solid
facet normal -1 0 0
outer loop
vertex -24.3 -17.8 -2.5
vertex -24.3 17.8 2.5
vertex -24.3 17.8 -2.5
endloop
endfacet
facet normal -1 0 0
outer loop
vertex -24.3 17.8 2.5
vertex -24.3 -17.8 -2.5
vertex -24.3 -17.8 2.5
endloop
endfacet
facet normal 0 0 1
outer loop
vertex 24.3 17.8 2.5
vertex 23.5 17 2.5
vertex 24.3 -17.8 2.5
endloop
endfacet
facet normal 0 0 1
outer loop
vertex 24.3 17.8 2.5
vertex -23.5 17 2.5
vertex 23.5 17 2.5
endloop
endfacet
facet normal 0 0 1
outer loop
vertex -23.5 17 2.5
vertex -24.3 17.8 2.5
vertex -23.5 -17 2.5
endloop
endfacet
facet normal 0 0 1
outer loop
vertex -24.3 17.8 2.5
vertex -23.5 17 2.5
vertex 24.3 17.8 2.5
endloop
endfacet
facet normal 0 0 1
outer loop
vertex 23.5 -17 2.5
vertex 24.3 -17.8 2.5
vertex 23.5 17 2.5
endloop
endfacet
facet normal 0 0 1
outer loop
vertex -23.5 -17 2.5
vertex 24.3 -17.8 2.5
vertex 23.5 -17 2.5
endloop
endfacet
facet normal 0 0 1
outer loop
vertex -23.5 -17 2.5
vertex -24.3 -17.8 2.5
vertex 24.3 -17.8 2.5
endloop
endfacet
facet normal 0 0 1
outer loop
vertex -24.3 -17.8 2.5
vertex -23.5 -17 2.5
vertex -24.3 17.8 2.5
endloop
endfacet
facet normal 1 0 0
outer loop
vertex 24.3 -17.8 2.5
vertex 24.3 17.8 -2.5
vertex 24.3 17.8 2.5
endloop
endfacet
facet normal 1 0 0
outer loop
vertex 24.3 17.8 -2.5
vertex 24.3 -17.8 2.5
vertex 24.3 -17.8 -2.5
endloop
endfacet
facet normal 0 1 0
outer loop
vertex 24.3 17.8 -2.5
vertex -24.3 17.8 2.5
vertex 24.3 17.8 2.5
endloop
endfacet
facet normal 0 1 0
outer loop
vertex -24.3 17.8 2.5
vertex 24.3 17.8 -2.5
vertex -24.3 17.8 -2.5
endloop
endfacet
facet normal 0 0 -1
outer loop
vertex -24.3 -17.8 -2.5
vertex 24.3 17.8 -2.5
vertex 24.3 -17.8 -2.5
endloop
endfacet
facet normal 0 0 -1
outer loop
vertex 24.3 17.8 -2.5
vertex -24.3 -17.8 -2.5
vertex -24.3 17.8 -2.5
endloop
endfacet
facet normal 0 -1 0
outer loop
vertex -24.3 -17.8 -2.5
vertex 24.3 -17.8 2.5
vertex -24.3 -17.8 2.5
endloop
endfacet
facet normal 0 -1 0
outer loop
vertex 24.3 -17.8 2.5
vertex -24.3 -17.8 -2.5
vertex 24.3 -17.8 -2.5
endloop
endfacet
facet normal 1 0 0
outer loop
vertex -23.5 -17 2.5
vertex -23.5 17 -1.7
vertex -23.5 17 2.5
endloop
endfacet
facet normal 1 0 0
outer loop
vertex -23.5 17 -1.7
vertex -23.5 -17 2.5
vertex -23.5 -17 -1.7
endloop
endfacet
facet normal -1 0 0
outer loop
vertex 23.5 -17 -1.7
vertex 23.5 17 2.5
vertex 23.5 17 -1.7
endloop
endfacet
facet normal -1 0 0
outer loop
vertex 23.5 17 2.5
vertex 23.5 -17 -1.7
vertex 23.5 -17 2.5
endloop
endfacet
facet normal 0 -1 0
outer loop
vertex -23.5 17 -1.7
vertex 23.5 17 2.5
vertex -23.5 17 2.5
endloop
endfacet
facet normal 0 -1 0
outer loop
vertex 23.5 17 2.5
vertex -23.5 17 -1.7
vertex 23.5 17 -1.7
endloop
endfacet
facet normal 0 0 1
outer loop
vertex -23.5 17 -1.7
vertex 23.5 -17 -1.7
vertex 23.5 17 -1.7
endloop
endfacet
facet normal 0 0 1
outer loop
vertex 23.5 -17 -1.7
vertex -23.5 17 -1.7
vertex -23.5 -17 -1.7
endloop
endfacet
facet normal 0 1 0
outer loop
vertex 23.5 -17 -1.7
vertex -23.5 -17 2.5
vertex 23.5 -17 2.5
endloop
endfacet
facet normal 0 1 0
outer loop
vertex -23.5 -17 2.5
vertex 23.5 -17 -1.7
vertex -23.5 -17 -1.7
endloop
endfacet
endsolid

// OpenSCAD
height = 47;
width = 34;
thick = 0.8;
z = 5;

difference()
{
    cube([height + 2*thick, width + 2*thick, z], center = true);
    translate([0, 0, thick / 2])
    #cube([height, width, z - thick], center = true);
}
